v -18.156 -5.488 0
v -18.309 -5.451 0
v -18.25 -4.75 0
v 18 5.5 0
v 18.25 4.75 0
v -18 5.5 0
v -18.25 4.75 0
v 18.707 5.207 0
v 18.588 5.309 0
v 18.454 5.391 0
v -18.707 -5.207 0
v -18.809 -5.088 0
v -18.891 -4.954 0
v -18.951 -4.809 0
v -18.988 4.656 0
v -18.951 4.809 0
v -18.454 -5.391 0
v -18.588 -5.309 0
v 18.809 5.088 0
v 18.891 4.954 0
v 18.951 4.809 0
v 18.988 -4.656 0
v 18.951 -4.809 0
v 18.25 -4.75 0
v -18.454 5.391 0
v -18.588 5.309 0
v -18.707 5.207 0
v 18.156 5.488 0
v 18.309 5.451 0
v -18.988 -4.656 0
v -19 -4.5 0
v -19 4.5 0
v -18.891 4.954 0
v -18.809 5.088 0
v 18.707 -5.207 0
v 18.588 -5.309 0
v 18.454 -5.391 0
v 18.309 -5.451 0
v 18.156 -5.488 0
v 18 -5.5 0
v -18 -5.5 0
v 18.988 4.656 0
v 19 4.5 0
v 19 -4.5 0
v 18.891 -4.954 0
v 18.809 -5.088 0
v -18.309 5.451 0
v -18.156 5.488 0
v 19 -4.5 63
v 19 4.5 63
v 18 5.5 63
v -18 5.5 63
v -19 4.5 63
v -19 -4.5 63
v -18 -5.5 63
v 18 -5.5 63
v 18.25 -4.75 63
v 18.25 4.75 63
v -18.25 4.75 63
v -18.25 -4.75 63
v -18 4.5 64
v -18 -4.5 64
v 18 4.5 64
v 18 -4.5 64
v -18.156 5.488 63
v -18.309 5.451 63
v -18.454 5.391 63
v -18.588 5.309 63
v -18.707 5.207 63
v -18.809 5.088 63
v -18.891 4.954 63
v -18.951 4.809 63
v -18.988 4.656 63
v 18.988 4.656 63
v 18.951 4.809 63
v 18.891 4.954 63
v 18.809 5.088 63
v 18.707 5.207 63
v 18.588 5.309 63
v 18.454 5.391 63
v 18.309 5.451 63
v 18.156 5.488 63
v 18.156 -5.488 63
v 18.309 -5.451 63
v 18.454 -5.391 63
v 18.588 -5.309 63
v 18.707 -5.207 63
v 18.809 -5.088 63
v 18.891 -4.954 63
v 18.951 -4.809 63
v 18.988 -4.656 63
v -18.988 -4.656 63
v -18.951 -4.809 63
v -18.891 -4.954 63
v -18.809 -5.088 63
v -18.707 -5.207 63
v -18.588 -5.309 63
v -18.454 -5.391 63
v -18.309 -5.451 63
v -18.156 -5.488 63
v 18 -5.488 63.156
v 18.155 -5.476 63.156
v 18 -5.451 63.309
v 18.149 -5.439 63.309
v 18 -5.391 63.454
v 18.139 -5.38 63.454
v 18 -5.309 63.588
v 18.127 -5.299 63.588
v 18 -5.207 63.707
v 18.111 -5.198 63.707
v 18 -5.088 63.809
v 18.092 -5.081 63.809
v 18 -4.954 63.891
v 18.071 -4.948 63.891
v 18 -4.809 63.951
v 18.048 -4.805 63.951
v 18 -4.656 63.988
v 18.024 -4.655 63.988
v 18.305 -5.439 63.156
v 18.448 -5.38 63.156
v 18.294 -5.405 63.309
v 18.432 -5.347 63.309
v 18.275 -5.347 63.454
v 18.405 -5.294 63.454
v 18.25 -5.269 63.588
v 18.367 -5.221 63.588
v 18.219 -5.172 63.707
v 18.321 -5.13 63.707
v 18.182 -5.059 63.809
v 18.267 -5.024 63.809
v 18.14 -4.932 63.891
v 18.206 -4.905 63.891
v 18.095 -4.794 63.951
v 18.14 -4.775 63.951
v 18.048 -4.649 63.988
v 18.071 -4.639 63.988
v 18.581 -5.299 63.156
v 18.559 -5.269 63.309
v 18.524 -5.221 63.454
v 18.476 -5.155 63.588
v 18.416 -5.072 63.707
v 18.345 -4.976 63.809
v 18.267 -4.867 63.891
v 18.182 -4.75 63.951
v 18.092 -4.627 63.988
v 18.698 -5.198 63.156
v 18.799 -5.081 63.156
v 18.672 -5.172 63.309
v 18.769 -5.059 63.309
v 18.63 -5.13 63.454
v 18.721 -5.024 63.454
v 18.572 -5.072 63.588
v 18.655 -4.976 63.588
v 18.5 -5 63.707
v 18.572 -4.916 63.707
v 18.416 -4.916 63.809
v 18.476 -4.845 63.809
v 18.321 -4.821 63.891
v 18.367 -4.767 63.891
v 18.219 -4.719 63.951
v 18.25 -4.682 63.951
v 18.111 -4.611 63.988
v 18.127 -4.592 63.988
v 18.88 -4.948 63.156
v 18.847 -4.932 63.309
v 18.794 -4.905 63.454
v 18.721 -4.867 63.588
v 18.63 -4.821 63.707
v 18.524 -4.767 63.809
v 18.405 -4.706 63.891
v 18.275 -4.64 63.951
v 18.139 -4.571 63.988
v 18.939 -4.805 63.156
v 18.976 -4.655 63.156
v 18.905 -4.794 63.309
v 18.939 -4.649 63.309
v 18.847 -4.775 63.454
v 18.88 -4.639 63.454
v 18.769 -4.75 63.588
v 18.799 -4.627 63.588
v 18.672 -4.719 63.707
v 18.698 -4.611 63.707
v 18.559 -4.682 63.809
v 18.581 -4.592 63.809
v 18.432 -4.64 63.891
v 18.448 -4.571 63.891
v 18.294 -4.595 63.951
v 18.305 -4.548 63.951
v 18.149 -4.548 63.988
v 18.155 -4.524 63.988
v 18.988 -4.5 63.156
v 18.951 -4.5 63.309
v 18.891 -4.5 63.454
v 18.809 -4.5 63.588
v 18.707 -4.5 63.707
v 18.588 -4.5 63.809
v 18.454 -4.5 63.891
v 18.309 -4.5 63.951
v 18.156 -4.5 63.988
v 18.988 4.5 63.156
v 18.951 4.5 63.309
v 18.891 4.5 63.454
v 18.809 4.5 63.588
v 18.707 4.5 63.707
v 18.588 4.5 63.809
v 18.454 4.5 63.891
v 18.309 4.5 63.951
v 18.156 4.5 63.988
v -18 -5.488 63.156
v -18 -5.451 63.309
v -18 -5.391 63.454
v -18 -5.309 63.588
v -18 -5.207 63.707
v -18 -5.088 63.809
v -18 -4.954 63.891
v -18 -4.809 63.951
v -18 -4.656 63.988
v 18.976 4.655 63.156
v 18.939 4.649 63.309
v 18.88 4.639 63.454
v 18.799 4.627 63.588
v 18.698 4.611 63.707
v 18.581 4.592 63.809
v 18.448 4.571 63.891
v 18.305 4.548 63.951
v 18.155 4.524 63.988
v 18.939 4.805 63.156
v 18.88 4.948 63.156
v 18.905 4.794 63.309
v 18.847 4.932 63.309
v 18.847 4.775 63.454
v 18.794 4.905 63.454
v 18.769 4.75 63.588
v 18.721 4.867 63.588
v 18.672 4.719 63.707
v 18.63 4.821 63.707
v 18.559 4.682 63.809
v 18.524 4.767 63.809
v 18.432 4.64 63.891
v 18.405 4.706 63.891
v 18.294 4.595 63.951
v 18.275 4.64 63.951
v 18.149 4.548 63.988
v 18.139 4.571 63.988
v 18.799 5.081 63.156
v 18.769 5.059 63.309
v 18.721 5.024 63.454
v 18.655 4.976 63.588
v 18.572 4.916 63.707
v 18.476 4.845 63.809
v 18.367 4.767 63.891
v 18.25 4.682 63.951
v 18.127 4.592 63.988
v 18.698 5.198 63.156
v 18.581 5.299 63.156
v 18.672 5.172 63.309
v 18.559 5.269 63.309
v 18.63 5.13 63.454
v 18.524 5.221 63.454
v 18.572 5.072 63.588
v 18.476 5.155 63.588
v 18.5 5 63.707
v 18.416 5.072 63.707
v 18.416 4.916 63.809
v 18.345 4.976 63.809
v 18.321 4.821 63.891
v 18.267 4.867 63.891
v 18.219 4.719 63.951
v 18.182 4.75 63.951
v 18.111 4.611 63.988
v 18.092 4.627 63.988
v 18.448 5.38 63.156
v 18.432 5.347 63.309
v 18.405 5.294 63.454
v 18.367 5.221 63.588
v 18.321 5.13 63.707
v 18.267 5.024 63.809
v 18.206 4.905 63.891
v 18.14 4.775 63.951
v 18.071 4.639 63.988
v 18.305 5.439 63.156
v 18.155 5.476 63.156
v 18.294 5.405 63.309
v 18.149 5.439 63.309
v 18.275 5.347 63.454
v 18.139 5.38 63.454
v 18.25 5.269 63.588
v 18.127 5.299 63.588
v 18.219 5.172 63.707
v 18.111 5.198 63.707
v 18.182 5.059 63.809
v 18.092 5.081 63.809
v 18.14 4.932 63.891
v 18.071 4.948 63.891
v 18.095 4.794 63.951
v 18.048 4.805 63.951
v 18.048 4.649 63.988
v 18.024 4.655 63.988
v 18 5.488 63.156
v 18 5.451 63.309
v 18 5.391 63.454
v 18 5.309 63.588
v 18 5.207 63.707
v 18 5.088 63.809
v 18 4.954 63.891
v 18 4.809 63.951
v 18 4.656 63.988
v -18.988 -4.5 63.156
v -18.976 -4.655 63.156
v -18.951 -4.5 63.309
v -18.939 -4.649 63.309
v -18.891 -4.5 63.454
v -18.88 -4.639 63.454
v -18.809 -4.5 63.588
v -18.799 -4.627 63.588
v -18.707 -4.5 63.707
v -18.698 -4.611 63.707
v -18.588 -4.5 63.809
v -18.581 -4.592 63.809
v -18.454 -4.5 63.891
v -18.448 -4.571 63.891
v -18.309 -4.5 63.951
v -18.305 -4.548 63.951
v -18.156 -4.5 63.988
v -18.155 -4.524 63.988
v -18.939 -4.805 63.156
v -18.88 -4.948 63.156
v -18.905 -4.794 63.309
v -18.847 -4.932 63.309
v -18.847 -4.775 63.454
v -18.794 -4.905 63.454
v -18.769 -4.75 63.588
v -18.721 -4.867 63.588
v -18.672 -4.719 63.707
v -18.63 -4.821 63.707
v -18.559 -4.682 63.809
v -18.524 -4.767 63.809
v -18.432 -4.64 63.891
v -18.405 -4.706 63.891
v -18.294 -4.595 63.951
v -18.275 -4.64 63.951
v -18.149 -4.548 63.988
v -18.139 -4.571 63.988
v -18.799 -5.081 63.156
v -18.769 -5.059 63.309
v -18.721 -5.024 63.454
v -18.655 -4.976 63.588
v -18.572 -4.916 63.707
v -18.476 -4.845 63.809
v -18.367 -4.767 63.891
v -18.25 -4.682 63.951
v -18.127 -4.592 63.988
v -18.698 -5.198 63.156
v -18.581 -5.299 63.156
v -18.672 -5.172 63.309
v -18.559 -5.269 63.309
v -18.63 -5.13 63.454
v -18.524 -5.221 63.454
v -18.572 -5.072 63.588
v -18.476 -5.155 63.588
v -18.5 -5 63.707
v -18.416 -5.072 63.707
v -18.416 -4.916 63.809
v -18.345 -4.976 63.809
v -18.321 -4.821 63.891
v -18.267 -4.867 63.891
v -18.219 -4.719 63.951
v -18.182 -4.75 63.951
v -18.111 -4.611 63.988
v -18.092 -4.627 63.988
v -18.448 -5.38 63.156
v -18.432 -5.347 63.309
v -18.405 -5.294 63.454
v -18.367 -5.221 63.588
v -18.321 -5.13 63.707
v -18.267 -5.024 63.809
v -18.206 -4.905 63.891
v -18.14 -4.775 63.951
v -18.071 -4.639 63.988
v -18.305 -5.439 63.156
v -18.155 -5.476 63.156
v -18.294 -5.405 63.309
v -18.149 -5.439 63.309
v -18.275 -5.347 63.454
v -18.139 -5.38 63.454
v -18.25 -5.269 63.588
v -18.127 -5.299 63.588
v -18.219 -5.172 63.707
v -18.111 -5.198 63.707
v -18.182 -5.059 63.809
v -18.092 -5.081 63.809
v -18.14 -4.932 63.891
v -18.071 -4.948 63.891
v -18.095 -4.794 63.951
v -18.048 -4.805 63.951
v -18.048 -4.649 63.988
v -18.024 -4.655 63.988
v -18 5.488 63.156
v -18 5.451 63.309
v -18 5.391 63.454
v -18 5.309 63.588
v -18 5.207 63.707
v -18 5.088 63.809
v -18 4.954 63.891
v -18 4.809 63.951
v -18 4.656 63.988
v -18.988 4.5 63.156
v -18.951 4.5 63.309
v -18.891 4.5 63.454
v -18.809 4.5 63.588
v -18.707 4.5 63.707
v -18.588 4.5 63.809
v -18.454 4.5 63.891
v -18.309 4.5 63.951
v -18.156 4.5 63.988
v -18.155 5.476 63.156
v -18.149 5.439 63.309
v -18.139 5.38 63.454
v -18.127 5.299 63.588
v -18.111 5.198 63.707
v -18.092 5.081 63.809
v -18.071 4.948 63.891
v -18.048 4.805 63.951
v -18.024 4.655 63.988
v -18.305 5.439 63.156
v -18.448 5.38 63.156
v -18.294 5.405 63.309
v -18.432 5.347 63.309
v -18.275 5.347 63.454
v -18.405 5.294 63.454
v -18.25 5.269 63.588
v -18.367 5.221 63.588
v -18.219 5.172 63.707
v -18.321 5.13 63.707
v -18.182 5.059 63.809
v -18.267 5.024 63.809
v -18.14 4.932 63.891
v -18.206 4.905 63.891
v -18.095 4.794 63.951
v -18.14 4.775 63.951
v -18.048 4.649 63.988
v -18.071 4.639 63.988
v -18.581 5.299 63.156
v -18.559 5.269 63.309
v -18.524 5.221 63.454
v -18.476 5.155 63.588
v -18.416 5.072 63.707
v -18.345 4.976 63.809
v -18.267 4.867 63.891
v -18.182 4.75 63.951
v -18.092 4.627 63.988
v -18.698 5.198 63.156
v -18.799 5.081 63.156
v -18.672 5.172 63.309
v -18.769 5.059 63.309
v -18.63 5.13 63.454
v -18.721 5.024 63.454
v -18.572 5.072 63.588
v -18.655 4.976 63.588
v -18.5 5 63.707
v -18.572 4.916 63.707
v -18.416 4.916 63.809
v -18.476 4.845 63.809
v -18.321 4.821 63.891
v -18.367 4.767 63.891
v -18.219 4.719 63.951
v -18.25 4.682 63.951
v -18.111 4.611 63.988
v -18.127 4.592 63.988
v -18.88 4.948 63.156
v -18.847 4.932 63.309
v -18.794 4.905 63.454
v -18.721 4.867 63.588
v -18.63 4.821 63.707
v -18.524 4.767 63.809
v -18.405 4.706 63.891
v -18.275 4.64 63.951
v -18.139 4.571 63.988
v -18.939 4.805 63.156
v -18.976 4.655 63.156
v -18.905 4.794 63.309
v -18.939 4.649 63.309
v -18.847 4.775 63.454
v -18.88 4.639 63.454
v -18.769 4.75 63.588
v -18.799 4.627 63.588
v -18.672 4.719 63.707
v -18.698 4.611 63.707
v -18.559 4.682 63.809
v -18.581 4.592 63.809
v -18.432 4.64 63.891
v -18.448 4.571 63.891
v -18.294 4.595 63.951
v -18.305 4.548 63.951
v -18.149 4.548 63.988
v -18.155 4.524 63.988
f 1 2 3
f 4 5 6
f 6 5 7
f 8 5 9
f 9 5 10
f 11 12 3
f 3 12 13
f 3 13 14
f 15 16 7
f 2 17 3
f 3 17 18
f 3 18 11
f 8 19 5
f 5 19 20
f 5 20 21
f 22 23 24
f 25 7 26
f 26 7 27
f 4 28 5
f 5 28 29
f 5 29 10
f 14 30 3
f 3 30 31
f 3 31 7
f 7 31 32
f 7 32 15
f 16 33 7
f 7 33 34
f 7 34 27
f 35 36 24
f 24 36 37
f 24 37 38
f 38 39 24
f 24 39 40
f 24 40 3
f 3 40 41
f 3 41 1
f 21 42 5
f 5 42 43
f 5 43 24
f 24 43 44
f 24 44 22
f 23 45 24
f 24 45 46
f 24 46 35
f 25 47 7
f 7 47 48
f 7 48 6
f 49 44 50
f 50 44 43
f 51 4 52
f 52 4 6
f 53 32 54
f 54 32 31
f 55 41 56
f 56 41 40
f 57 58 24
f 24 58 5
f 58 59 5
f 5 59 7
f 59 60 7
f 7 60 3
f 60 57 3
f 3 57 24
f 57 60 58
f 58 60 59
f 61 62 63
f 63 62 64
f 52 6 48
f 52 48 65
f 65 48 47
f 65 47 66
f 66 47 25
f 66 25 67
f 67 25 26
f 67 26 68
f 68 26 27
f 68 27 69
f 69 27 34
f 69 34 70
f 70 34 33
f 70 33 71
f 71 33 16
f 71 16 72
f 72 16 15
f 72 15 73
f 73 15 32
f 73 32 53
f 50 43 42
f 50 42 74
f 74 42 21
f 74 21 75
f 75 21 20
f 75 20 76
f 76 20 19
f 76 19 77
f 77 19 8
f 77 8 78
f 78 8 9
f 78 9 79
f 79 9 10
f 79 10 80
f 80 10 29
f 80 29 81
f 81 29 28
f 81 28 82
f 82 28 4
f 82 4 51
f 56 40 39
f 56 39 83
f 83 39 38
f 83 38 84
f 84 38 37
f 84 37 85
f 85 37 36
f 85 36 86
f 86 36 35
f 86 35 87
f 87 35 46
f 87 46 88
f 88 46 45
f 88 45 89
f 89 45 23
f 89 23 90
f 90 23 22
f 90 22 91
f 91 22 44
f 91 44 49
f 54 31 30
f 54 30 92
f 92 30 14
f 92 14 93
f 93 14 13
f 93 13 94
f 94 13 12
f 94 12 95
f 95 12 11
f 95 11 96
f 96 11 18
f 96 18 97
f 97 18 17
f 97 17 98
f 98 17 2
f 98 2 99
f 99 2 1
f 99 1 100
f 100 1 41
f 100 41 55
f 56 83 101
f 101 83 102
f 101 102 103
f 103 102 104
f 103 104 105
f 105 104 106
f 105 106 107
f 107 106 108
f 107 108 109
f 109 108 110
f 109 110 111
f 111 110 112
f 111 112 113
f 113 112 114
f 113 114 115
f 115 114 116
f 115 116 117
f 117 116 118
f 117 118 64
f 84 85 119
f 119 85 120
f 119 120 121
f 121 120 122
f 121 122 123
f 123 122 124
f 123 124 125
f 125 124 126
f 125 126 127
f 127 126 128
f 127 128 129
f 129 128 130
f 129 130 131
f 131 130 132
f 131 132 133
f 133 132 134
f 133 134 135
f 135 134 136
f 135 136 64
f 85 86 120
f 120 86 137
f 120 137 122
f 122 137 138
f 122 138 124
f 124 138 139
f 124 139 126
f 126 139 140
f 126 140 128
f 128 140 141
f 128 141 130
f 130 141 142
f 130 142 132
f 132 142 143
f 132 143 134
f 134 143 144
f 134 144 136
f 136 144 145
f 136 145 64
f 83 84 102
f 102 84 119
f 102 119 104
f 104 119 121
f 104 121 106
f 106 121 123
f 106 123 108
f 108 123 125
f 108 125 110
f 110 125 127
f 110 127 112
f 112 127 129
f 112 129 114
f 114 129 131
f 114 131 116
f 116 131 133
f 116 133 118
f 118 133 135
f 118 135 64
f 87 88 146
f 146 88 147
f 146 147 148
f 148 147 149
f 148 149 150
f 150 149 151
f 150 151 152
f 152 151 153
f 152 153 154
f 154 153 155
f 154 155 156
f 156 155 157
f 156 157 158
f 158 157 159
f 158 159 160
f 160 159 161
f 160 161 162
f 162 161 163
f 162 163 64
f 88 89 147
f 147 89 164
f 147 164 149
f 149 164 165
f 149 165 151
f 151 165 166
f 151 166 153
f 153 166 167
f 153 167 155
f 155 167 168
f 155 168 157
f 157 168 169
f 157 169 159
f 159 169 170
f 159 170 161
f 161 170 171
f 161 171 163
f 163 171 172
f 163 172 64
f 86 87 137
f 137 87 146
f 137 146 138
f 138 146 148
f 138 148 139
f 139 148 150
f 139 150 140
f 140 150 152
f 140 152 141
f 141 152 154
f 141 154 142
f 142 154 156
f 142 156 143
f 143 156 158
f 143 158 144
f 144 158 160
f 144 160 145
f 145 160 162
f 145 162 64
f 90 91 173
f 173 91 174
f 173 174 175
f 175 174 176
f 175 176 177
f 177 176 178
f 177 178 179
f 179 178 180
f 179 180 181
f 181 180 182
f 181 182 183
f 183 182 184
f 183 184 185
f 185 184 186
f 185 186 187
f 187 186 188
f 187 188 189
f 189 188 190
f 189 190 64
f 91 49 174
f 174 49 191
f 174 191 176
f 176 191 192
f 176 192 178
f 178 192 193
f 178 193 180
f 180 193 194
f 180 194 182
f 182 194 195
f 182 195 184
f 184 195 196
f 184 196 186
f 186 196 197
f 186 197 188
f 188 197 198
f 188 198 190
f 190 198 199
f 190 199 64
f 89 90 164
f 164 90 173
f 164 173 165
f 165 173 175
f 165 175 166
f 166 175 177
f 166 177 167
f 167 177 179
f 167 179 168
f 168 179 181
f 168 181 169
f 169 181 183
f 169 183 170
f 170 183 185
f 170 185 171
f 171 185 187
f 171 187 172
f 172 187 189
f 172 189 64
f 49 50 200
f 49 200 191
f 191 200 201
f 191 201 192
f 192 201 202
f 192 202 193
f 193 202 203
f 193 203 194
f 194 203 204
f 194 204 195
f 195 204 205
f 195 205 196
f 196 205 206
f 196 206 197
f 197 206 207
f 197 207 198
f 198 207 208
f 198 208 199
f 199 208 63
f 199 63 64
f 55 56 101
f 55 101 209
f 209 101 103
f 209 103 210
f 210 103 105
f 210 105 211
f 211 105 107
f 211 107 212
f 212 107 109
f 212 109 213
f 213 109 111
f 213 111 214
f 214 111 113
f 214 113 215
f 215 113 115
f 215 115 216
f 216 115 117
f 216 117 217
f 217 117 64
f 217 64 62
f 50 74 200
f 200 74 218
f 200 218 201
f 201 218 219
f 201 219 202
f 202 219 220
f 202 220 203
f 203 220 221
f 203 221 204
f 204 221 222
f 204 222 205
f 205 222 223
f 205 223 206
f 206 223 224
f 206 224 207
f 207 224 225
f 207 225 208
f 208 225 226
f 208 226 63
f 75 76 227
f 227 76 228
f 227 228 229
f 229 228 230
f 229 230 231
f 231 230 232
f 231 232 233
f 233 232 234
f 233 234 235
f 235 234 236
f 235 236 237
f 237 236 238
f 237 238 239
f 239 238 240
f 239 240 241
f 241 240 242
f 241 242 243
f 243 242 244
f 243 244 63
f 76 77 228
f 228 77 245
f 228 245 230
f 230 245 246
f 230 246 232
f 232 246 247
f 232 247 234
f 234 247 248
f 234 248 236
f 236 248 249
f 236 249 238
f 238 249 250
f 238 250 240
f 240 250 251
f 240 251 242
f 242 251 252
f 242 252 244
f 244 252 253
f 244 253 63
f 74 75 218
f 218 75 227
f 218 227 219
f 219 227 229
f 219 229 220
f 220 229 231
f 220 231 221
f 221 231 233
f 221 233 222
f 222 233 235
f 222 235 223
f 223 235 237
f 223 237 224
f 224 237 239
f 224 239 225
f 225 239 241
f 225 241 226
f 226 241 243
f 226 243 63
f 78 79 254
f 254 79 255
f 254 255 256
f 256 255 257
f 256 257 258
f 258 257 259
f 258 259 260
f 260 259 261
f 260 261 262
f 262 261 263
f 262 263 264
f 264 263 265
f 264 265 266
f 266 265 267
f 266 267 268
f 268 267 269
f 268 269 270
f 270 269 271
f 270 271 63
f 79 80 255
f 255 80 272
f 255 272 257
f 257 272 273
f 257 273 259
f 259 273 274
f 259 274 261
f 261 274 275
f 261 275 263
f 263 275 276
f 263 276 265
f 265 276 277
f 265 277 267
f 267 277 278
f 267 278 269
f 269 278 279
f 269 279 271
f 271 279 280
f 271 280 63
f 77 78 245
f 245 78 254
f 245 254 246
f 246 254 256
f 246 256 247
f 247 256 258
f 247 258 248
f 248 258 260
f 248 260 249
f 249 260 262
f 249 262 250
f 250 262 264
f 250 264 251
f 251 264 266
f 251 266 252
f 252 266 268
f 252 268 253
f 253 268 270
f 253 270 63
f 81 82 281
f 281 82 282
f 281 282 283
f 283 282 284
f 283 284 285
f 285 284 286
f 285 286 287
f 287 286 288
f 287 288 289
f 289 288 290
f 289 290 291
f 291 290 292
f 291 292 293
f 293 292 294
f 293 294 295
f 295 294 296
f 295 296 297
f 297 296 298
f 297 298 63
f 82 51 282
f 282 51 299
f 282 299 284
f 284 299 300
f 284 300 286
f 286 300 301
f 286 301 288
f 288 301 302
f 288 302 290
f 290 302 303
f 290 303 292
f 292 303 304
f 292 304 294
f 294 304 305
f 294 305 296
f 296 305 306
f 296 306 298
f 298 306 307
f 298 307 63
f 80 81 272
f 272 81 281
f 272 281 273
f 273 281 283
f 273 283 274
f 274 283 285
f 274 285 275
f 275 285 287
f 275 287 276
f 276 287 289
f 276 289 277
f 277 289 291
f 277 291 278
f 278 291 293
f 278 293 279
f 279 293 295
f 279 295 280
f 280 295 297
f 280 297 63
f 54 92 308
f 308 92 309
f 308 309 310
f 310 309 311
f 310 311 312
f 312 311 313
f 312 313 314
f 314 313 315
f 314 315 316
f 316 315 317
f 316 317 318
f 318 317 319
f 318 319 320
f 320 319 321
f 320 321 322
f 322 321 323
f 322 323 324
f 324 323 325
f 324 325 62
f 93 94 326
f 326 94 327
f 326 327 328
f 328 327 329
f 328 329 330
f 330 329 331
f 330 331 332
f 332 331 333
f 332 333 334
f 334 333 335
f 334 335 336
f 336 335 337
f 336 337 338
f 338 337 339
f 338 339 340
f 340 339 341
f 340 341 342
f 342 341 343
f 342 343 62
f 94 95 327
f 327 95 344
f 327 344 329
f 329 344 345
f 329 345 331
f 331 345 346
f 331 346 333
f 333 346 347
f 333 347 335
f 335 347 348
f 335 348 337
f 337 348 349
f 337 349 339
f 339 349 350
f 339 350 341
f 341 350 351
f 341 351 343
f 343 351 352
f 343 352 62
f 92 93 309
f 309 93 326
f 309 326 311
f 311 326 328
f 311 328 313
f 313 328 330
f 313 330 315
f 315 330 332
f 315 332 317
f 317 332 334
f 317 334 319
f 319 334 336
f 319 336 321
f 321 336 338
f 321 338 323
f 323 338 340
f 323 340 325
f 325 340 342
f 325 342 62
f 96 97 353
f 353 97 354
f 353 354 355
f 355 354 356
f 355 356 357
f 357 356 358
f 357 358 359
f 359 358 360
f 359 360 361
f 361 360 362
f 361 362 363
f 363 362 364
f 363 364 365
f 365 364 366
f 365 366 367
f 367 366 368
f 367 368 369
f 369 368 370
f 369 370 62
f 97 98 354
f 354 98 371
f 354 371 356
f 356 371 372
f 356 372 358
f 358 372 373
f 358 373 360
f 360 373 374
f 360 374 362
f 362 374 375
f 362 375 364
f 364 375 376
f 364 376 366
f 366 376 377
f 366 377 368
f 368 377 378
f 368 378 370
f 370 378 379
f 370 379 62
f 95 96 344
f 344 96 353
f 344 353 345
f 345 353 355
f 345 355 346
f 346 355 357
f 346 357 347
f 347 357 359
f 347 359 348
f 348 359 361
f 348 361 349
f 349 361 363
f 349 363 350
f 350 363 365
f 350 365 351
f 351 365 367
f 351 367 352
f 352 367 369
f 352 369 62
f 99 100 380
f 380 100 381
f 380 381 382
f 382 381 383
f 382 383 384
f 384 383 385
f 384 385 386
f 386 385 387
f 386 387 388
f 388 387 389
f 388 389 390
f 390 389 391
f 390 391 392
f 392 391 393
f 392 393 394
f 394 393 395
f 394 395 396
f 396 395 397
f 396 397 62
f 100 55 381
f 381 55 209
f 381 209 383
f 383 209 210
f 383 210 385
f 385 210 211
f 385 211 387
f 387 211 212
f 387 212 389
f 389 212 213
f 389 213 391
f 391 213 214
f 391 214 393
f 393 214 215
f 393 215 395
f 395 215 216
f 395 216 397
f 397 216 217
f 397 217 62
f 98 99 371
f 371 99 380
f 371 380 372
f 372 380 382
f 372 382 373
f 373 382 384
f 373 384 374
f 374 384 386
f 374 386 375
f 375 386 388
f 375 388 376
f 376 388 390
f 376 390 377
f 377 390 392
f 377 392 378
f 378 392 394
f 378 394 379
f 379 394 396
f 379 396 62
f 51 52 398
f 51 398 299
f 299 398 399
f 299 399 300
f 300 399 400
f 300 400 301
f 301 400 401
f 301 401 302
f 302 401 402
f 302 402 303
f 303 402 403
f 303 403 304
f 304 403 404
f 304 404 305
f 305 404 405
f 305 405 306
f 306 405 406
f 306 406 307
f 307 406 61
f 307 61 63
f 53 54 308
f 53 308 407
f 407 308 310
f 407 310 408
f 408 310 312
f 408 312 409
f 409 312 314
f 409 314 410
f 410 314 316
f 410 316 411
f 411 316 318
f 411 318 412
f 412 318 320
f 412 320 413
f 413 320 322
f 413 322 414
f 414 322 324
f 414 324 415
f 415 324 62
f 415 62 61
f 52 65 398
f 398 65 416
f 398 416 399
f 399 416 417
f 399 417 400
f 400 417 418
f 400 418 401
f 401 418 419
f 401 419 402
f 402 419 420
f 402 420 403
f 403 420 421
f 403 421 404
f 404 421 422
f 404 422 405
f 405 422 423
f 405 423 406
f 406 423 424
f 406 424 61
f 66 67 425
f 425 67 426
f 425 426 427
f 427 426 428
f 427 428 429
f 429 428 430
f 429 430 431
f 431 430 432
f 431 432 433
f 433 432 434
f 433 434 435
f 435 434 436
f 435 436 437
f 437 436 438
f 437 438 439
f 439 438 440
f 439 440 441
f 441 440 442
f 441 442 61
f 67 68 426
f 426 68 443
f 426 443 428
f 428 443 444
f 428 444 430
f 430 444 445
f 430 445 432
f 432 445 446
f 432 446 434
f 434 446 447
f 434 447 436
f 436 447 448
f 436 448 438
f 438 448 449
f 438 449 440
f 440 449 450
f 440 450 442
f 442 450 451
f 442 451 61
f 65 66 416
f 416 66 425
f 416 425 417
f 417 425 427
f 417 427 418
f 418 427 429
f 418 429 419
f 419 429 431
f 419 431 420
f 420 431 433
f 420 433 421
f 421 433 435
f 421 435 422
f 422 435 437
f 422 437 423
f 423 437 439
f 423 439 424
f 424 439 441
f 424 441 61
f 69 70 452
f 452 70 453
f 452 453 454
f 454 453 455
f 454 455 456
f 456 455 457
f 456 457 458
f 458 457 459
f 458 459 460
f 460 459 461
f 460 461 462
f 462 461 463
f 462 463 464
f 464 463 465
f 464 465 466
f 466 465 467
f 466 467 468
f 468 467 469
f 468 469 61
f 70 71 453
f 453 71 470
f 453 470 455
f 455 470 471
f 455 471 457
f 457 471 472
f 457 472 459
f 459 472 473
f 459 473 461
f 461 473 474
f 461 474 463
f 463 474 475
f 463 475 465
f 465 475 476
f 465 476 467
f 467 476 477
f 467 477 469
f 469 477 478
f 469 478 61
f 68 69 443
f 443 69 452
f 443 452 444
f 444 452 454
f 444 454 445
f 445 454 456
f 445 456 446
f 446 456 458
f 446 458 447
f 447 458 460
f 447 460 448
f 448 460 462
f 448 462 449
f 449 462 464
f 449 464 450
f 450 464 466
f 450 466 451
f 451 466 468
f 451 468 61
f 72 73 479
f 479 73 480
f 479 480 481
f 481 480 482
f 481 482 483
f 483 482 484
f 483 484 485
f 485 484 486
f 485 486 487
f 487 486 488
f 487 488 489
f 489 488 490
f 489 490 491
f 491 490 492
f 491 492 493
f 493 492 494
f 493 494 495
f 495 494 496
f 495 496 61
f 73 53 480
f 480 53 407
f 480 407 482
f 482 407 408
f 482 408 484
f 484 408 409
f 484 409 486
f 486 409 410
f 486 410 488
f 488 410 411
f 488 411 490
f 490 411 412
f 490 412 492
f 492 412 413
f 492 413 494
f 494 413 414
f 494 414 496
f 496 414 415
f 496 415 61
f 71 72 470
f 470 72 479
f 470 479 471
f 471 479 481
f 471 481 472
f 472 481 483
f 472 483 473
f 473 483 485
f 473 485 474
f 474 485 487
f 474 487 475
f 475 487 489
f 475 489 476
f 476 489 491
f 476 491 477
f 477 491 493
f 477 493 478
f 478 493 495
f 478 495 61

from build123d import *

# Parameters (mm, degrees)
SKETCH8_W           = 38
SKETCH8_H           = 11
SKETCH8_W_2         = 36.5
SKETCH8_H_2         = 9.5
BOSS_EXTRUDE2_DEPTH = 63
SKETCH9_W           = 38
SKETCH9_H           = 11
BOSS_EXTRUDE3_DEPTH = 1
FILLET1_R           = 1
FILLET2_R           = 1
FILLET3_R           = 1
FILLET4_R           = 1
FILLET5_R           = 1


with BuildPart() as part:
    # Sketch8 → Boss-Extrude2 (new body)
    with BuildSketch(Plane.XY):
        Rectangle(SKETCH8_W, SKETCH8_H)
        Rectangle(SKETCH8_W_2, SKETCH8_H_2, mode=Mode.SUBTRACT)
    extrude(amount=BOSS_EXTRUDE2_DEPTH)

    # Sketch9 → Boss-Extrude3 (add)
    with BuildSketch(Plane.XY.offset(63)):
        Rectangle(SKETCH9_W, SKETCH9_H)
    extrude(amount=BOSS_EXTRUDE3_DEPTH)

    # Fillet1
    fillet1_edges = [part.edges().sort_by_distance(p)[0] for p in [
        (-19, 5.5, 32),
    ]]
    fillet(fillet1_edges, radius=FILLET1_R)

    # Fillet2
    fillet2_edges = [part.edges().sort_by_distance(p)[0] for p in [
        (19, 5.5, 32),
    ]]
    fillet(fillet2_edges, radius=FILLET2_R)

    # Fillet3
    fillet3_edges = [part.edges().sort_by_distance(p)[0] for p in [
        (19, -5.5, 32),
    ]]
    fillet(fillet3_edges, radius=FILLET3_R)

    # Fillet4
    fillet4_edges = [part.edges().sort_by_distance(p)[0] for p in [
        (-19, -5.5, 32),
    ]]
    fillet(fillet4_edges, radius=FILLET4_R)

    # Fillet5
    fillet5_edges = [part.edges().sort_by_distance(p)[0] for p in [
        (-19, 0, 64),
        (-18.707106781, 5.207106781, 64),
        (0, 5.5, 64),
        (18.707106781, 5.207106781, 64),
        (19, 0, 64),
        (18.707106781, -5.207106781, 64),
        (0, -5.5, 64),
        (-18.707106781, -5.207106781, 64),
    ]]
    fillet(fillet5_edges, radius=FILLET5_R)


solid = part.part
